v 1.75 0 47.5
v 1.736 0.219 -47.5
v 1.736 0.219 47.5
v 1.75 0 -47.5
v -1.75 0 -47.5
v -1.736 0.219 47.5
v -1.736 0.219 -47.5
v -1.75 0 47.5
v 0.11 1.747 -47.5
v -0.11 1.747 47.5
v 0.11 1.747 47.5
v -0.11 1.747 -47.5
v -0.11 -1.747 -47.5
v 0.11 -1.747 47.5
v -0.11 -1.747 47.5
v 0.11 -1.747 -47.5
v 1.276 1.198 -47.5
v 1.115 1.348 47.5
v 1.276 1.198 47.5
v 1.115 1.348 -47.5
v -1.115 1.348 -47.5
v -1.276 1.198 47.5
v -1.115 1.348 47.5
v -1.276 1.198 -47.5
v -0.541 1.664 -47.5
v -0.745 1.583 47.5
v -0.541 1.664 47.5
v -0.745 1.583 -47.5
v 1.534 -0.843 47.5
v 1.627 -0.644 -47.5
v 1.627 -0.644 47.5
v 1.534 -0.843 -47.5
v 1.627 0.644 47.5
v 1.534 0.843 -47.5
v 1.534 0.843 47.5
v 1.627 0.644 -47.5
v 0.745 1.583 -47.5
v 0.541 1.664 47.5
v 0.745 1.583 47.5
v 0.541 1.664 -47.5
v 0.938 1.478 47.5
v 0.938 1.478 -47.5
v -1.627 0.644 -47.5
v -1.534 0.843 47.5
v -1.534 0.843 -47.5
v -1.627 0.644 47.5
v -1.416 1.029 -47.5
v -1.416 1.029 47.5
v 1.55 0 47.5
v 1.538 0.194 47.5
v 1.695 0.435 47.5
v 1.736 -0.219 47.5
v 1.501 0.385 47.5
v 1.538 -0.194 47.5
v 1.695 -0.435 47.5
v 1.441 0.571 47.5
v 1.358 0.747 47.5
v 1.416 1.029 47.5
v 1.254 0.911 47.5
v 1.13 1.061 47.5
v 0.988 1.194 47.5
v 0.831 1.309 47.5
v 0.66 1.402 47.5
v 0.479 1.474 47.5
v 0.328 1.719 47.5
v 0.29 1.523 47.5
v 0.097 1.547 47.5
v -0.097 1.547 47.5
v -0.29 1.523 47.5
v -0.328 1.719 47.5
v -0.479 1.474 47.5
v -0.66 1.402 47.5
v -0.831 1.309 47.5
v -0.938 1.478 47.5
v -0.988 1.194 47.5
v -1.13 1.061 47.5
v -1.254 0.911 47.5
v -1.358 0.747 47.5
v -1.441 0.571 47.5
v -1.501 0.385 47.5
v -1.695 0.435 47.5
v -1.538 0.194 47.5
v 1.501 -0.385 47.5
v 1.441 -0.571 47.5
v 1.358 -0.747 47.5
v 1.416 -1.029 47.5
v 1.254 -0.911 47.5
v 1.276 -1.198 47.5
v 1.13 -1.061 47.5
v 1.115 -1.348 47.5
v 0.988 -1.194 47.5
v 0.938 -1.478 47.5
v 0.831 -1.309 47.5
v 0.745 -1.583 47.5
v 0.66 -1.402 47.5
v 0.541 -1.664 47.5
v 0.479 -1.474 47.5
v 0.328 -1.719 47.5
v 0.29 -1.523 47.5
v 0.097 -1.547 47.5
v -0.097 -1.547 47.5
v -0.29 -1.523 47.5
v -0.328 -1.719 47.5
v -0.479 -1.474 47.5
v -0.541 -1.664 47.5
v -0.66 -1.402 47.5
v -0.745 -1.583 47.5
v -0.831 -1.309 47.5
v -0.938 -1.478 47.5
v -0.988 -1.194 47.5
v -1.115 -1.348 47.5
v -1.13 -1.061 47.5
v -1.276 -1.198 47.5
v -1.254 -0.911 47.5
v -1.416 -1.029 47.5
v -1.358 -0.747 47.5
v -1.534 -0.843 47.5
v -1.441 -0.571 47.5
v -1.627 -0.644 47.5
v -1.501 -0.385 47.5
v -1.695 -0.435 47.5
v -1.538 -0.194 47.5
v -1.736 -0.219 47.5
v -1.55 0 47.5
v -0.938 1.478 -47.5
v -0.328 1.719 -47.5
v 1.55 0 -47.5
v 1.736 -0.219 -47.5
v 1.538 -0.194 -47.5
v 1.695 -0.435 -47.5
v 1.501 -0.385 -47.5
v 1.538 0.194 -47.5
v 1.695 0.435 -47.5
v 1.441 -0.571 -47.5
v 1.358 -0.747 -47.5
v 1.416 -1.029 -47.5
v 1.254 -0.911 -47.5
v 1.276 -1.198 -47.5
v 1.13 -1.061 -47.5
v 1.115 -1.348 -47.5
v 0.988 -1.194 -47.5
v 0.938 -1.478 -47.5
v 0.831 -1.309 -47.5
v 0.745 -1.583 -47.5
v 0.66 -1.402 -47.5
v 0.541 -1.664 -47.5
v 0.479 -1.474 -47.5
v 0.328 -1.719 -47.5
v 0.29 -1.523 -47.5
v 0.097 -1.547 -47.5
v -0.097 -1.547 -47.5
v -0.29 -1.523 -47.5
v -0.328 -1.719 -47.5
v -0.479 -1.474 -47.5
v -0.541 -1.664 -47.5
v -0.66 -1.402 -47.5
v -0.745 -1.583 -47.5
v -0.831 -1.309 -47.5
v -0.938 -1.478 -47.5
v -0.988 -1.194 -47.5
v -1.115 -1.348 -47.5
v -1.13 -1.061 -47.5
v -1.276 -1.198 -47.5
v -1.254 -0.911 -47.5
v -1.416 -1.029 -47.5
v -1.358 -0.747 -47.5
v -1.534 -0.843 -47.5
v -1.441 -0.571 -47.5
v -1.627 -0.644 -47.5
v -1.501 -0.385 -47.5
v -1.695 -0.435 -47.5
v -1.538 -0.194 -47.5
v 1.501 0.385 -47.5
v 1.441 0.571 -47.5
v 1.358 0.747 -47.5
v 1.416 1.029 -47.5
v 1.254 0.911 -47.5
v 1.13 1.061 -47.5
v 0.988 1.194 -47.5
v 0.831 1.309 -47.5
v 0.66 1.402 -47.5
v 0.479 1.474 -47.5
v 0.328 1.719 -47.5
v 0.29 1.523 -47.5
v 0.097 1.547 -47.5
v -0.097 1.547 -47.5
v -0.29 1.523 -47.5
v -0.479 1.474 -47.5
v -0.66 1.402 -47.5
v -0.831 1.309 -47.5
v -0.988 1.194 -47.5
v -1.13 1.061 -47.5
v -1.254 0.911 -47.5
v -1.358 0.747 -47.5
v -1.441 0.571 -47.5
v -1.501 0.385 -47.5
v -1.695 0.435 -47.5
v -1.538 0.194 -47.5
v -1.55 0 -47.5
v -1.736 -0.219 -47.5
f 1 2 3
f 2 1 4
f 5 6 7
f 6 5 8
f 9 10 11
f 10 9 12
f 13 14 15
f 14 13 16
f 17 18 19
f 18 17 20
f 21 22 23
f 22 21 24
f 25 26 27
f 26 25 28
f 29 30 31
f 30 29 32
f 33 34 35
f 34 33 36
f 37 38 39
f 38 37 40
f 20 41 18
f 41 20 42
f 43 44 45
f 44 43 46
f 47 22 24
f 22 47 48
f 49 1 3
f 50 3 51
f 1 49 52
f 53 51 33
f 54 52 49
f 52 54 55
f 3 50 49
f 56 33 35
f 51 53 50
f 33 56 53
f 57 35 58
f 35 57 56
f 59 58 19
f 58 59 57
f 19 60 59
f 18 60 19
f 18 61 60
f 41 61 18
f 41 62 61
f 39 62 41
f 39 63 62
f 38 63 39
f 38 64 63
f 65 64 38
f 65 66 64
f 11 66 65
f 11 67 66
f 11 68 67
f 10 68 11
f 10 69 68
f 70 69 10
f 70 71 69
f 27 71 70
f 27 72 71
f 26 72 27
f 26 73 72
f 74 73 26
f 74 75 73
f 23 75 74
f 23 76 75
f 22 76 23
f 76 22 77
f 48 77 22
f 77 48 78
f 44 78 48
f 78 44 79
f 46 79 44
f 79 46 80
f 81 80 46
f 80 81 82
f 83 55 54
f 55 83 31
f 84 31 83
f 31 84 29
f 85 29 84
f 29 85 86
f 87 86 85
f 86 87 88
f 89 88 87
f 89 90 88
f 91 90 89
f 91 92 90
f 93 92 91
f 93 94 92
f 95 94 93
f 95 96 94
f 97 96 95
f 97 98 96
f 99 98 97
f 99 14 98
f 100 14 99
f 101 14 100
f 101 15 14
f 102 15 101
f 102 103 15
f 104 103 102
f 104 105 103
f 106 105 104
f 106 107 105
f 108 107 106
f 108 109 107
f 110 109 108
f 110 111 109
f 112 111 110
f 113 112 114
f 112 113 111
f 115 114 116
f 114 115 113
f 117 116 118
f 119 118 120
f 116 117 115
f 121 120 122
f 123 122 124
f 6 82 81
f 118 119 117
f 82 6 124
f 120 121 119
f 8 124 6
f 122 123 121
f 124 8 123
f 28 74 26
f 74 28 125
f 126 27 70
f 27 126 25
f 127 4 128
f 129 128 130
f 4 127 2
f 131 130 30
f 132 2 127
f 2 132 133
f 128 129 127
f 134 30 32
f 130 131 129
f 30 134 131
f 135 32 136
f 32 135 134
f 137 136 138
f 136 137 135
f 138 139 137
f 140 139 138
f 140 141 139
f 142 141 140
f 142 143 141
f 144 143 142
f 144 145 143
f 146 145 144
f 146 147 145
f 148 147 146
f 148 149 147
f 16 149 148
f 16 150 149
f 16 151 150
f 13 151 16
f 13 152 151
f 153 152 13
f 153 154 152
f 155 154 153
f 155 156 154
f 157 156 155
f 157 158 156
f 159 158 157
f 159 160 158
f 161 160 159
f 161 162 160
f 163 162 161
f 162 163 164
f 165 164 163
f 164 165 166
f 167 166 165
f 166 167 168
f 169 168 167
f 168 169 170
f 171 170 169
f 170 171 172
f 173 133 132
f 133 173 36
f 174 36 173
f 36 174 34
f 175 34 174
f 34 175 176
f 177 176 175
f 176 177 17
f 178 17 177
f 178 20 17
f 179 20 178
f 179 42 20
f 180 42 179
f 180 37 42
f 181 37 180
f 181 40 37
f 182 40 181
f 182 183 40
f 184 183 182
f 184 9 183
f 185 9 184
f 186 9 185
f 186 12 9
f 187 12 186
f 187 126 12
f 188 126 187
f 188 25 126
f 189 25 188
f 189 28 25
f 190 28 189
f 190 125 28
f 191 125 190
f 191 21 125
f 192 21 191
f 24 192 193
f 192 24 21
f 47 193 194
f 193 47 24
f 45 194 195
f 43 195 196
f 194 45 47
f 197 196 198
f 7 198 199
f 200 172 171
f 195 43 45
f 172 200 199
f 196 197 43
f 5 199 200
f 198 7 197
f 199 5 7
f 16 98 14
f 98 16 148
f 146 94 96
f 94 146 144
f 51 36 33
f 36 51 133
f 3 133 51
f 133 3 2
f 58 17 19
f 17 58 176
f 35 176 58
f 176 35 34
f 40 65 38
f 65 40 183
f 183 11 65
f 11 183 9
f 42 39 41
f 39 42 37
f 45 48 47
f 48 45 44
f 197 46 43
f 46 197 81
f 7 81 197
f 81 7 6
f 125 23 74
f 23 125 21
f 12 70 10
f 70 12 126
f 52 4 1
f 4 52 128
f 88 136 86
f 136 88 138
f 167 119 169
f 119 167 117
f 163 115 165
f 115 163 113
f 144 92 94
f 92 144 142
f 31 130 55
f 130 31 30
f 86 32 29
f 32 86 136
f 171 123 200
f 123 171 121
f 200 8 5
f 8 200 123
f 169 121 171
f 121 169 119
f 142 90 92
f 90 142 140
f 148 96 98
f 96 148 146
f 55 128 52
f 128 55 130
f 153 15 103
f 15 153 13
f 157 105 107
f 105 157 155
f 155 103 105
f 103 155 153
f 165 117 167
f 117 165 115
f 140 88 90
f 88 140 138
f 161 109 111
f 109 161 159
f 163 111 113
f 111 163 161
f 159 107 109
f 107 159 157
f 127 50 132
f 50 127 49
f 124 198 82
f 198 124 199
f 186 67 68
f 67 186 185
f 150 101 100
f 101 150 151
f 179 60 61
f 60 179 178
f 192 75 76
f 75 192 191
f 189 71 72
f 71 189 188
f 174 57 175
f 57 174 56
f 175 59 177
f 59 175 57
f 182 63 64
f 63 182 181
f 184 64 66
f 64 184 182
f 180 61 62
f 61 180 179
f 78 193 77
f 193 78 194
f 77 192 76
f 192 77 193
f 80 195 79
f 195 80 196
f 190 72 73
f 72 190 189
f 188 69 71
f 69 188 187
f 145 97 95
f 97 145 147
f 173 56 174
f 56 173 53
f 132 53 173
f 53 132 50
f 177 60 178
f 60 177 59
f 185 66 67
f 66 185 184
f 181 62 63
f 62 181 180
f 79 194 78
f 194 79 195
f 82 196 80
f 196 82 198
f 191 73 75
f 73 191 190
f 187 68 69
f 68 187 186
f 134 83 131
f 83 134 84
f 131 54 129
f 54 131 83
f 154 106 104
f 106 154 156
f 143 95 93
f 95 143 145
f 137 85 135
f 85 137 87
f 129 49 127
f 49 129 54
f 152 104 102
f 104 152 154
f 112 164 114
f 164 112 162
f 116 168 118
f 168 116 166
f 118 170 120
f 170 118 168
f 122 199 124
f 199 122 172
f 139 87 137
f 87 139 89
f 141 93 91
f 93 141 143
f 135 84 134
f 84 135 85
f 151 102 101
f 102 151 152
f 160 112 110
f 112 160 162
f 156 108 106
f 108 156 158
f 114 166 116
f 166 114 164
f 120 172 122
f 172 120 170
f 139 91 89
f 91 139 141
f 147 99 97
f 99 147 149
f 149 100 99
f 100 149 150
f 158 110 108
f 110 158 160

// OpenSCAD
$fn = 50;


difference() {
	union() {
		translate(v = [0, 0, -47.5000000000]) {
			cylinder(h = 95, r = 1.7500000000);
		}
	}
	union() {
		translate(v = [0, 0, -100.0000000000]) {
			cylinder(h = 200, r = 1.5500000000);
		}
	}
}
